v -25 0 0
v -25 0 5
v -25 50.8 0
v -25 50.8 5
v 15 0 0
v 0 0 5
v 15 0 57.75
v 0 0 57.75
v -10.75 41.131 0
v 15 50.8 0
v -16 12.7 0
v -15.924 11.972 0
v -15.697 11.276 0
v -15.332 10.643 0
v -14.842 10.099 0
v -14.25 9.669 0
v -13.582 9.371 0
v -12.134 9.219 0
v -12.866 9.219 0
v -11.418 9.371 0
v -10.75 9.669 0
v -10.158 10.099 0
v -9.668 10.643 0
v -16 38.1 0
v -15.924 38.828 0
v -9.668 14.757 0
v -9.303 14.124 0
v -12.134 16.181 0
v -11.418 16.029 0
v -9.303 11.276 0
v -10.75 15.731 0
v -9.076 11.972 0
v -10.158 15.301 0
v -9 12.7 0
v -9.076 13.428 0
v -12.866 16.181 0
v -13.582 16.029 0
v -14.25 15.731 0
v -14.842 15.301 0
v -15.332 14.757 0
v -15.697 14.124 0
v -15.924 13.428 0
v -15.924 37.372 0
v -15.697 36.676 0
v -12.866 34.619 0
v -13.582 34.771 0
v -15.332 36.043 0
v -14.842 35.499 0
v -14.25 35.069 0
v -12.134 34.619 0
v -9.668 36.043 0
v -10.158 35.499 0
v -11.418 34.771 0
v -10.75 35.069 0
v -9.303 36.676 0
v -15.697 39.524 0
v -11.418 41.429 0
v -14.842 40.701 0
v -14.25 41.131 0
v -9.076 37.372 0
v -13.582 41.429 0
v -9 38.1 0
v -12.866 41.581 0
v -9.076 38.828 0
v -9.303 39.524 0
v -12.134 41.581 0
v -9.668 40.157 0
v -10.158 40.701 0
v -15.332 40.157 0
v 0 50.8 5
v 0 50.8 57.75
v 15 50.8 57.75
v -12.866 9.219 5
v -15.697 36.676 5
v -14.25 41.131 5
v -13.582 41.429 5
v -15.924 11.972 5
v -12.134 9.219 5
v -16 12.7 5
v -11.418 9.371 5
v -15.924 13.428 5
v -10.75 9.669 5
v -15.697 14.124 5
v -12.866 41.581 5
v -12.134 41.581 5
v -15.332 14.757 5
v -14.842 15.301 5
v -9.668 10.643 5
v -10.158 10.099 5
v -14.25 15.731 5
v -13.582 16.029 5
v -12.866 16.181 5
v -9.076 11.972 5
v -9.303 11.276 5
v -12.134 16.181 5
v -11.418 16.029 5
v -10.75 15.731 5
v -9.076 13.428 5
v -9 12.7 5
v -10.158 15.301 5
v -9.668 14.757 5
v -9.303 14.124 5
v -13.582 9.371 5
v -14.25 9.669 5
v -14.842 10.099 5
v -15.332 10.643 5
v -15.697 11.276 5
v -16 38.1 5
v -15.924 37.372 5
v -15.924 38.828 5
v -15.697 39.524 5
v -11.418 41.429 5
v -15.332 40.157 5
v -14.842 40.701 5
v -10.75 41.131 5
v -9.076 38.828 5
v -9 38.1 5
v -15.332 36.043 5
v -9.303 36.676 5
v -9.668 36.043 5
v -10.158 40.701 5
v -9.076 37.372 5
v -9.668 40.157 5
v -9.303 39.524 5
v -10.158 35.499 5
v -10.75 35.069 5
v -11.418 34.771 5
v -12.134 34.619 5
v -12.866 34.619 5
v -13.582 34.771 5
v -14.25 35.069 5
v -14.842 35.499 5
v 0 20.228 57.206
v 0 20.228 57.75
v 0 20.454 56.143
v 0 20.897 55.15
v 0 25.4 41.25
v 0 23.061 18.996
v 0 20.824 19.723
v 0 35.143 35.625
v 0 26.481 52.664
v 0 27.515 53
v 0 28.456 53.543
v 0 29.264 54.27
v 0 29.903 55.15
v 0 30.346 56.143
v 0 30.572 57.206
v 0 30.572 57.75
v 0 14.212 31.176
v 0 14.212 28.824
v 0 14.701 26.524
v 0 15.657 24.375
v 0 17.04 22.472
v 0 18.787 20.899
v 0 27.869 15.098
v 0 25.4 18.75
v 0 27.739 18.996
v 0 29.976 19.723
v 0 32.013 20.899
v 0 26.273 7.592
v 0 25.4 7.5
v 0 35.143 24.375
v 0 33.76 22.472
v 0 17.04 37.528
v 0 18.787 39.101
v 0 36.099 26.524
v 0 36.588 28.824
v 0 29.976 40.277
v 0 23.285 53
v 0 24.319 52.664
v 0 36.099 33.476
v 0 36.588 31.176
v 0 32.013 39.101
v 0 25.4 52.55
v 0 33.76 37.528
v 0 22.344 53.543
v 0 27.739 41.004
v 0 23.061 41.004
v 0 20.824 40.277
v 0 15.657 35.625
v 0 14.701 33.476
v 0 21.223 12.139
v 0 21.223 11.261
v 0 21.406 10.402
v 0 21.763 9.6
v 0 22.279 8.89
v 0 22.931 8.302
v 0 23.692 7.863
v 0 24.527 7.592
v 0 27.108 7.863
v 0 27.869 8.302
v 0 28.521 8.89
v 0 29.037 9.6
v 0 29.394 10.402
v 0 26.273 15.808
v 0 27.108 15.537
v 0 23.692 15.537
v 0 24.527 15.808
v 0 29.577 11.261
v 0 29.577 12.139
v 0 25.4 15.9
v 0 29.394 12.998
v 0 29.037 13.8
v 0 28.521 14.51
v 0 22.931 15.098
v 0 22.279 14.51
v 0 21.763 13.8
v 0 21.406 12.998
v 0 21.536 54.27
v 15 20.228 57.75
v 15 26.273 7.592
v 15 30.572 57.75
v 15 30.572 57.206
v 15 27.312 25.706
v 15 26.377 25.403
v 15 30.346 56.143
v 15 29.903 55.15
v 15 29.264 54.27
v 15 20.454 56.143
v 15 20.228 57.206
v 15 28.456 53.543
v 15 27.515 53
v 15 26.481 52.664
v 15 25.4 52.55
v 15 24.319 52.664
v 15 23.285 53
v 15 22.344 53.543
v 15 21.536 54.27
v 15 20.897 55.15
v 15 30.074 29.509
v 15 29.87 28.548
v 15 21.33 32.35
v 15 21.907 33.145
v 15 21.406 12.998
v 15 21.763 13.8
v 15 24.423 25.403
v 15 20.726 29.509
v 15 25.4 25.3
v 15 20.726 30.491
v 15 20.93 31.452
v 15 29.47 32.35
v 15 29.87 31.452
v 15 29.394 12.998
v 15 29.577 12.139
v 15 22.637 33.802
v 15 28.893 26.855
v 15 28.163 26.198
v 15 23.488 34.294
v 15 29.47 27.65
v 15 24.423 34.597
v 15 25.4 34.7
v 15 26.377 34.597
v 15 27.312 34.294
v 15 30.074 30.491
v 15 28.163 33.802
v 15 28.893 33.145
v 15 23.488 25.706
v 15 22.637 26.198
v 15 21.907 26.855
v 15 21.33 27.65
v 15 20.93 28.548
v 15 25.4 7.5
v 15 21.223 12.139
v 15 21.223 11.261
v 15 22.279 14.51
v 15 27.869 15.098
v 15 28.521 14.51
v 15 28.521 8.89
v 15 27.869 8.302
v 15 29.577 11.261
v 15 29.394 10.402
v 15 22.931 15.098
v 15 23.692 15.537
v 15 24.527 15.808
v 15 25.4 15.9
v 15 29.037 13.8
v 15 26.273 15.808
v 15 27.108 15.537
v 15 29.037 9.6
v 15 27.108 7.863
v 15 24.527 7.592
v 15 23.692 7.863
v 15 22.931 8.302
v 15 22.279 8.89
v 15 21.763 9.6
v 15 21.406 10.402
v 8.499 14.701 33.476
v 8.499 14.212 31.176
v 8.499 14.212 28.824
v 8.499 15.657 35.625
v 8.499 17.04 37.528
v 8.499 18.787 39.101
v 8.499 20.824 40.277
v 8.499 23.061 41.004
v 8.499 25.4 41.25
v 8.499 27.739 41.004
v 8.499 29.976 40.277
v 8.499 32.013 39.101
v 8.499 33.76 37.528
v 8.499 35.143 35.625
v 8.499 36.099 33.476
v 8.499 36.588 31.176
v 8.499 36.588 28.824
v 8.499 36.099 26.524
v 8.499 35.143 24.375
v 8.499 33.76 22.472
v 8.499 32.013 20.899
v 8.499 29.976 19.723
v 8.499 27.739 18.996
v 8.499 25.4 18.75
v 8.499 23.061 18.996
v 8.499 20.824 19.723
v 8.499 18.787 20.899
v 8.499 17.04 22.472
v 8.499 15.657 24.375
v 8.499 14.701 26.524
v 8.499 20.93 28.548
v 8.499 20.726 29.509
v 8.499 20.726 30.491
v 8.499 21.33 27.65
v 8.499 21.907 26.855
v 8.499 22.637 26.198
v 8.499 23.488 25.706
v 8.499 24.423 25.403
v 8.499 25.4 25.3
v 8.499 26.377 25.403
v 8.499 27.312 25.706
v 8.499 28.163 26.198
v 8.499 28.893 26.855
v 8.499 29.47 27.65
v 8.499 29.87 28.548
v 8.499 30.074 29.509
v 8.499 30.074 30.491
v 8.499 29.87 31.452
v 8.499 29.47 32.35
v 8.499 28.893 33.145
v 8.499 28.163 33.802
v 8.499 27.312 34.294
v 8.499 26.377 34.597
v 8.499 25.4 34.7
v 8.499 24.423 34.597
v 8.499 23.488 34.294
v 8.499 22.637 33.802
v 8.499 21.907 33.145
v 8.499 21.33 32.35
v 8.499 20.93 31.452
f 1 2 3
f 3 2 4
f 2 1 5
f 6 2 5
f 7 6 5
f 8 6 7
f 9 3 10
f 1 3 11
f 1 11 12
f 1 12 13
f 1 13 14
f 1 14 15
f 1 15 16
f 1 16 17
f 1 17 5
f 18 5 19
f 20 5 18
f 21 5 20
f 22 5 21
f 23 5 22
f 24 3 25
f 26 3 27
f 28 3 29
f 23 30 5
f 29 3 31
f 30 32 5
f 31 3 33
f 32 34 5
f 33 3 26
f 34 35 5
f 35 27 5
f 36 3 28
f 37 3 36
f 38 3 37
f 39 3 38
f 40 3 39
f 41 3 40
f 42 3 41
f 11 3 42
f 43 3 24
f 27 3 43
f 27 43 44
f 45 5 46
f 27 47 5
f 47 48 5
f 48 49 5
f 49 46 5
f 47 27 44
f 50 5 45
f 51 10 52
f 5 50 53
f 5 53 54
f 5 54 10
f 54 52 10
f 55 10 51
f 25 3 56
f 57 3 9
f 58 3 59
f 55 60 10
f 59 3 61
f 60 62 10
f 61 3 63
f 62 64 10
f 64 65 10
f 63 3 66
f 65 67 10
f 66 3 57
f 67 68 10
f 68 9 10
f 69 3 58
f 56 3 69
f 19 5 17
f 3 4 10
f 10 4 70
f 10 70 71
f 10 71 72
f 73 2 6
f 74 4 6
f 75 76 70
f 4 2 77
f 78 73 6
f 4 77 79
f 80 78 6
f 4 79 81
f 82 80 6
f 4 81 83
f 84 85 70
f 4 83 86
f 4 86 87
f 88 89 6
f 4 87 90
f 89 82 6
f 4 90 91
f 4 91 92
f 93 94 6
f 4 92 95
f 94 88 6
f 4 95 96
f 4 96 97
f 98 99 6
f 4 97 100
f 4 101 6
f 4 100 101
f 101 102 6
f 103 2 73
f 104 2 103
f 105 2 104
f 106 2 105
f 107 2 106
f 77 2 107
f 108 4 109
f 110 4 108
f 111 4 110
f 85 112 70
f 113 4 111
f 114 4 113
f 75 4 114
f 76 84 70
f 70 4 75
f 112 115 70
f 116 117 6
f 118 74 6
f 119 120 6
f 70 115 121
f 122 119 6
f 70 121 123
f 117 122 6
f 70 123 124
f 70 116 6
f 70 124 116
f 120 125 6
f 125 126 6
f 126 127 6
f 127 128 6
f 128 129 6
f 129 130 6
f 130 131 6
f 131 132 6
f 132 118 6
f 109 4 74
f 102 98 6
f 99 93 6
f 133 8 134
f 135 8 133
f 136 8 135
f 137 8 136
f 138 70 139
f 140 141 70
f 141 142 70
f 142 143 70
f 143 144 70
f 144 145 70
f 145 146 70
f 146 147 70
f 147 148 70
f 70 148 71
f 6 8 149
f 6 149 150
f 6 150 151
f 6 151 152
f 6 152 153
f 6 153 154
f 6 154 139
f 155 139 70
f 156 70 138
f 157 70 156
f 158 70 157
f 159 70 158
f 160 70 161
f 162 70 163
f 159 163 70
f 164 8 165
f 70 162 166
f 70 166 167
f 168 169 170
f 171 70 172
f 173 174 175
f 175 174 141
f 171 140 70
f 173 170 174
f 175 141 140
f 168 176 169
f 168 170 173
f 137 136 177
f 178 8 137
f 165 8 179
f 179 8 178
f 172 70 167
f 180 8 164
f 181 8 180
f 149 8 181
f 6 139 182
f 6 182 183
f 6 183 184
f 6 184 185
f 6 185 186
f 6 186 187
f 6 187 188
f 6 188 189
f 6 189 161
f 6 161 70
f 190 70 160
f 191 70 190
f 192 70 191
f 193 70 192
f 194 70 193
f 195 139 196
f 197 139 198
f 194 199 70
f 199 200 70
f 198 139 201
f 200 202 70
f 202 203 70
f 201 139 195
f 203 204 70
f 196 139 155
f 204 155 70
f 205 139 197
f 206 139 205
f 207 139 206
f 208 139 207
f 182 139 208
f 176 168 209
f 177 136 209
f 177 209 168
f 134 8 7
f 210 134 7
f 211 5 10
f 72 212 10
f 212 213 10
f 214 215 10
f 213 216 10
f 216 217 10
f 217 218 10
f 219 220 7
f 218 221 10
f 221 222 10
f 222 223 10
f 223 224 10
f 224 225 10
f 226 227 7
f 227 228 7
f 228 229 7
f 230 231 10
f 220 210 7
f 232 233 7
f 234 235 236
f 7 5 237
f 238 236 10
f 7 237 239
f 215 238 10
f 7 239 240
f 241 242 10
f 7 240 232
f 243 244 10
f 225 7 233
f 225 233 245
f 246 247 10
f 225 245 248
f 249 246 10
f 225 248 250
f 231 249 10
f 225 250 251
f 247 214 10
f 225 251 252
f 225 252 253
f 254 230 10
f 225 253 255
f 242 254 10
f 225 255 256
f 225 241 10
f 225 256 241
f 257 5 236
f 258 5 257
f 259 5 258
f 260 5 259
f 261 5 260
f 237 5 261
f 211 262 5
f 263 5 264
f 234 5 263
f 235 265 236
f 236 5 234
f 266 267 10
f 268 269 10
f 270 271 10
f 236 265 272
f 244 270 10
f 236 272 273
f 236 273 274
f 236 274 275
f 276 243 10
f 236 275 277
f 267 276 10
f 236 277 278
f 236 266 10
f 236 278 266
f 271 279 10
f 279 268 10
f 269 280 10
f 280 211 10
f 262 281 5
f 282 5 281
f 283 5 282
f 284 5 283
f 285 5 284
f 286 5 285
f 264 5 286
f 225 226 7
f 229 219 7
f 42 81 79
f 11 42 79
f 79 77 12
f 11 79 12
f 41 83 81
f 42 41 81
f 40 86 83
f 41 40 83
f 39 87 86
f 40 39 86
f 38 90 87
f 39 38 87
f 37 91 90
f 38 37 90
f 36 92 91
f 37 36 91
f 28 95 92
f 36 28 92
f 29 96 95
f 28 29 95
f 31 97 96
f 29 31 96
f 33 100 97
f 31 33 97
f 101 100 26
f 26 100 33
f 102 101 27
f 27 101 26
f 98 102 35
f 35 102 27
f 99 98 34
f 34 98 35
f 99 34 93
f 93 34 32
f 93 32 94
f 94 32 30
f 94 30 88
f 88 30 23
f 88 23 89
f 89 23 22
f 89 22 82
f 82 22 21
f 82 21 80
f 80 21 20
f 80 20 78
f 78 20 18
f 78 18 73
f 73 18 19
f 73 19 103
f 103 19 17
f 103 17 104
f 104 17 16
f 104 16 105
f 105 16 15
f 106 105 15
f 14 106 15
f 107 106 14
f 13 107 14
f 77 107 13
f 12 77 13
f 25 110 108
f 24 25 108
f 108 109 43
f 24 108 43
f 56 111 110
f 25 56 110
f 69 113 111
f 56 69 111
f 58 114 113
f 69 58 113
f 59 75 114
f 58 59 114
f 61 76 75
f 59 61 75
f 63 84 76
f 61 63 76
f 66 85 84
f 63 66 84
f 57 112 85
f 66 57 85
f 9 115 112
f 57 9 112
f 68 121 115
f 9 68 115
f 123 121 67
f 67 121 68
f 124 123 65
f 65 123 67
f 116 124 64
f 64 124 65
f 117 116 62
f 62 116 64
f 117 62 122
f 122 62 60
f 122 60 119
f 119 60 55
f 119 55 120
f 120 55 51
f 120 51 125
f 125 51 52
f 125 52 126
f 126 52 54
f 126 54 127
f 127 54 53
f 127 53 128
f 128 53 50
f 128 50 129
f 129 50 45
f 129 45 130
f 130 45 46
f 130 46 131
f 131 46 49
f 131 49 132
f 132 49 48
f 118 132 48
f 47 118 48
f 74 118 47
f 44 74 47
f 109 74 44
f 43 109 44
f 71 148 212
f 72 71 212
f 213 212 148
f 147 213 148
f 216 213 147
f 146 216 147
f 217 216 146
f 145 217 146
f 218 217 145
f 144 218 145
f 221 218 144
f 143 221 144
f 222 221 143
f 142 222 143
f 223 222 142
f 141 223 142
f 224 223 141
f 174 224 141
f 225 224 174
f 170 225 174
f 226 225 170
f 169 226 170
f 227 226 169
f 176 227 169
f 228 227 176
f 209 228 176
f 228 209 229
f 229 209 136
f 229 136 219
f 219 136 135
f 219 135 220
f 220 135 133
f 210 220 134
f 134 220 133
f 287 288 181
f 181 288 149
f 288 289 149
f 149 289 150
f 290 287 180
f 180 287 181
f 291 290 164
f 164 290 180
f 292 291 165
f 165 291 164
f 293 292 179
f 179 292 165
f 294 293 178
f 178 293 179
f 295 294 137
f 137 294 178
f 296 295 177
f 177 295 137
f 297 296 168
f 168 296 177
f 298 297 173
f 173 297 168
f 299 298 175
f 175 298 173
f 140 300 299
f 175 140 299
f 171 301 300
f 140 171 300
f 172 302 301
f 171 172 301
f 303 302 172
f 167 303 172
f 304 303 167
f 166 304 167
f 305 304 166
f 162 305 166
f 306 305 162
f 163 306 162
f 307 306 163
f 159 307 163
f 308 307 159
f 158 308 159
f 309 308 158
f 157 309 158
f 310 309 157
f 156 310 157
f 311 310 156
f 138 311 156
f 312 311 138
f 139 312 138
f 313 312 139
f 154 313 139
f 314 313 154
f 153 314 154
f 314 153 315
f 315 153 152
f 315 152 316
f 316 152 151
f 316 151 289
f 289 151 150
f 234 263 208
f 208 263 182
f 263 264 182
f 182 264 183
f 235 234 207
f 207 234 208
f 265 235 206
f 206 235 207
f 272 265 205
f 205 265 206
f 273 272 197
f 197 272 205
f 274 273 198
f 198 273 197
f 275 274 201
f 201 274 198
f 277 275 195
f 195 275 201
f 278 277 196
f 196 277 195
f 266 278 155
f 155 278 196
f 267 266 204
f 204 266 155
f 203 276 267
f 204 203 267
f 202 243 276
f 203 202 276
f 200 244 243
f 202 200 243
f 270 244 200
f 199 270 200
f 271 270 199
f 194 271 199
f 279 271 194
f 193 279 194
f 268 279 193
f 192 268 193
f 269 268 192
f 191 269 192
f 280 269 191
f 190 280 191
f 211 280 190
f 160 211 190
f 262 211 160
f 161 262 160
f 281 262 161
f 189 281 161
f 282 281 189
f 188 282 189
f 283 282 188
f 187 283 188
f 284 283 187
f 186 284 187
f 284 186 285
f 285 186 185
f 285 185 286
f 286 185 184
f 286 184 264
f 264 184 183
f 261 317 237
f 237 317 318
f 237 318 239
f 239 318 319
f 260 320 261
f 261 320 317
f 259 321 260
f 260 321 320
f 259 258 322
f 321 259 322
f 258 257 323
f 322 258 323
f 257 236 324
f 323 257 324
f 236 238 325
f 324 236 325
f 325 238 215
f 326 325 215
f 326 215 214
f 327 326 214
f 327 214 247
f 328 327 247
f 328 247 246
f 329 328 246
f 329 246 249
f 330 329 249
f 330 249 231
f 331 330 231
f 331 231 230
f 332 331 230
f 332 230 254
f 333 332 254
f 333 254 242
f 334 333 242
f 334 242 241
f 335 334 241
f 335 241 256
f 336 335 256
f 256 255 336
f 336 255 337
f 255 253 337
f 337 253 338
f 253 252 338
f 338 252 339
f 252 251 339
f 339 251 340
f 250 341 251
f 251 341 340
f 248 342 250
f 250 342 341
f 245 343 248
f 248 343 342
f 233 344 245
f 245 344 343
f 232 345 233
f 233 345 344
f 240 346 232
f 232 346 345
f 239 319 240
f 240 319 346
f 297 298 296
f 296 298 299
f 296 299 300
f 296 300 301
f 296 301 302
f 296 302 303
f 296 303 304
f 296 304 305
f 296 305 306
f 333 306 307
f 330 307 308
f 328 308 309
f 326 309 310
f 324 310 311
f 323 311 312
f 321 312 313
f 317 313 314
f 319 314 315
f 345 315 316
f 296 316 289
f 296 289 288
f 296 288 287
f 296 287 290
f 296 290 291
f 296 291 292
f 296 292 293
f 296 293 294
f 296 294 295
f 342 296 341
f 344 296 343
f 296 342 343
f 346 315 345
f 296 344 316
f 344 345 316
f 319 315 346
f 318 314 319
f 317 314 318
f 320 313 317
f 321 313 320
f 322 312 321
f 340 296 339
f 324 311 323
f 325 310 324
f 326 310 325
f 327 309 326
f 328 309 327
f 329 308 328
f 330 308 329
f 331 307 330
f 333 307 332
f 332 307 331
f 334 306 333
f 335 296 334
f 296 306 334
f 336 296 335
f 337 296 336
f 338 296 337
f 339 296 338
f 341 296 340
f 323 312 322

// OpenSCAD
// file: syringePumpConstants.scad
/* === Project-universal Constants === */

//Not all of these variables are used in this specific model,
//but the same variable set is used across all models in this project.

$fs = 0.1;

inch = 25.4; //for mm conversion

//width of base
baseSizeY = 2*inch;
centerY = baseSizeY / 2; //both axes go right down the middle of the base

//stepper motor
stepperZSize = 42;
stepperYSize = 42;

//608 bearing 
bearing608Height = 8.5;
bearing608Diameter = 22.5;

//height of holder for 80/20 screws
mountPlateHeight = 5;

//axis heights
threadedAxisHeight = stepperZSize/2 + mountPlateHeight + 4;
smoothAxisHeight = (threadedAxisHeight-6.6) / 2;
smoothRodRadius = 4.2;

//syringe properties
barrelDiameter = 25;

barrelSlotThickness = 3;
barrelSlotHeight = 28;

syringeCenterHeight = threadedAxisHeight + bearing608Diameter/2 + 4 + barrelDiameter/2;

//fixes render oddities
floatCorrection = 0.001; 
floatCorrection2 = 2*floatCorrection; 

//8020 mounting plate
screwPlateSize = 25;	
screwRadius = 3.5;
// main file
include <syringePumpConstants.scad>

/* === Model-specific Constants === */

//cube containing rods and syringe barrel stop
mountXSize = 15;
mountZSize = syringeCenterHeight;


/* === Model === */

//main cube, holds the two axes
difference(){
	cube(size=[mountXSize,baseSizeY,mountZSize]);
	
	//608 bearing for threaded rod
	translate([-floatCorrection,centerY,threadedAxisHeight]){
		rotate(a=[0,90,0]){
			bearing608();
		}
	}
	
	//bore hole for threaded rod
	translate([floatCorrection,centerY,threadedAxisHeight]){
		rotate(a=[0,90,0]){
			cylinder(h=mountXSize, r=smoothRodRadius+0.5);
		}
	}

	//hole for smooth rod (needs to fit fairly tight)
	translate([-floatCorrection,centerY,smoothAxisHeight]){
		rotate(a=[0,90,0]){
			cylinder(h=mountXSize+floatCorrection2, r=smoothRodRadius);
		}
	}
	
	//hole for syringe barrel stopper
	translate([-floatCorrection,centerY,syringeCenterHeight]){
		rotate(a=[0,90,0]){
			cylinder(h=mountXSize+floatCorrection2, r=5.2);
		}
	}
}

difference(){
	translate([-screwPlateSize,0,0]){
		cube(size=[screwPlateSize,baseSizeY,mountPlateHeight]);
	}

	translate([-screwPlateSize/2,baseSizeY/4,0]){
		cylinder(h=mountPlateHeight, r=screwRadius);
	}
	translate([-screwPlateSize/2,3*baseSizeY/4,0]){
		cylinder(h=mountPlateHeight, r=screwRadius);
	}

}

module bearing608(){
	cylinder(h=bearing608Height, r=bearing608Diameter/2);	
}
